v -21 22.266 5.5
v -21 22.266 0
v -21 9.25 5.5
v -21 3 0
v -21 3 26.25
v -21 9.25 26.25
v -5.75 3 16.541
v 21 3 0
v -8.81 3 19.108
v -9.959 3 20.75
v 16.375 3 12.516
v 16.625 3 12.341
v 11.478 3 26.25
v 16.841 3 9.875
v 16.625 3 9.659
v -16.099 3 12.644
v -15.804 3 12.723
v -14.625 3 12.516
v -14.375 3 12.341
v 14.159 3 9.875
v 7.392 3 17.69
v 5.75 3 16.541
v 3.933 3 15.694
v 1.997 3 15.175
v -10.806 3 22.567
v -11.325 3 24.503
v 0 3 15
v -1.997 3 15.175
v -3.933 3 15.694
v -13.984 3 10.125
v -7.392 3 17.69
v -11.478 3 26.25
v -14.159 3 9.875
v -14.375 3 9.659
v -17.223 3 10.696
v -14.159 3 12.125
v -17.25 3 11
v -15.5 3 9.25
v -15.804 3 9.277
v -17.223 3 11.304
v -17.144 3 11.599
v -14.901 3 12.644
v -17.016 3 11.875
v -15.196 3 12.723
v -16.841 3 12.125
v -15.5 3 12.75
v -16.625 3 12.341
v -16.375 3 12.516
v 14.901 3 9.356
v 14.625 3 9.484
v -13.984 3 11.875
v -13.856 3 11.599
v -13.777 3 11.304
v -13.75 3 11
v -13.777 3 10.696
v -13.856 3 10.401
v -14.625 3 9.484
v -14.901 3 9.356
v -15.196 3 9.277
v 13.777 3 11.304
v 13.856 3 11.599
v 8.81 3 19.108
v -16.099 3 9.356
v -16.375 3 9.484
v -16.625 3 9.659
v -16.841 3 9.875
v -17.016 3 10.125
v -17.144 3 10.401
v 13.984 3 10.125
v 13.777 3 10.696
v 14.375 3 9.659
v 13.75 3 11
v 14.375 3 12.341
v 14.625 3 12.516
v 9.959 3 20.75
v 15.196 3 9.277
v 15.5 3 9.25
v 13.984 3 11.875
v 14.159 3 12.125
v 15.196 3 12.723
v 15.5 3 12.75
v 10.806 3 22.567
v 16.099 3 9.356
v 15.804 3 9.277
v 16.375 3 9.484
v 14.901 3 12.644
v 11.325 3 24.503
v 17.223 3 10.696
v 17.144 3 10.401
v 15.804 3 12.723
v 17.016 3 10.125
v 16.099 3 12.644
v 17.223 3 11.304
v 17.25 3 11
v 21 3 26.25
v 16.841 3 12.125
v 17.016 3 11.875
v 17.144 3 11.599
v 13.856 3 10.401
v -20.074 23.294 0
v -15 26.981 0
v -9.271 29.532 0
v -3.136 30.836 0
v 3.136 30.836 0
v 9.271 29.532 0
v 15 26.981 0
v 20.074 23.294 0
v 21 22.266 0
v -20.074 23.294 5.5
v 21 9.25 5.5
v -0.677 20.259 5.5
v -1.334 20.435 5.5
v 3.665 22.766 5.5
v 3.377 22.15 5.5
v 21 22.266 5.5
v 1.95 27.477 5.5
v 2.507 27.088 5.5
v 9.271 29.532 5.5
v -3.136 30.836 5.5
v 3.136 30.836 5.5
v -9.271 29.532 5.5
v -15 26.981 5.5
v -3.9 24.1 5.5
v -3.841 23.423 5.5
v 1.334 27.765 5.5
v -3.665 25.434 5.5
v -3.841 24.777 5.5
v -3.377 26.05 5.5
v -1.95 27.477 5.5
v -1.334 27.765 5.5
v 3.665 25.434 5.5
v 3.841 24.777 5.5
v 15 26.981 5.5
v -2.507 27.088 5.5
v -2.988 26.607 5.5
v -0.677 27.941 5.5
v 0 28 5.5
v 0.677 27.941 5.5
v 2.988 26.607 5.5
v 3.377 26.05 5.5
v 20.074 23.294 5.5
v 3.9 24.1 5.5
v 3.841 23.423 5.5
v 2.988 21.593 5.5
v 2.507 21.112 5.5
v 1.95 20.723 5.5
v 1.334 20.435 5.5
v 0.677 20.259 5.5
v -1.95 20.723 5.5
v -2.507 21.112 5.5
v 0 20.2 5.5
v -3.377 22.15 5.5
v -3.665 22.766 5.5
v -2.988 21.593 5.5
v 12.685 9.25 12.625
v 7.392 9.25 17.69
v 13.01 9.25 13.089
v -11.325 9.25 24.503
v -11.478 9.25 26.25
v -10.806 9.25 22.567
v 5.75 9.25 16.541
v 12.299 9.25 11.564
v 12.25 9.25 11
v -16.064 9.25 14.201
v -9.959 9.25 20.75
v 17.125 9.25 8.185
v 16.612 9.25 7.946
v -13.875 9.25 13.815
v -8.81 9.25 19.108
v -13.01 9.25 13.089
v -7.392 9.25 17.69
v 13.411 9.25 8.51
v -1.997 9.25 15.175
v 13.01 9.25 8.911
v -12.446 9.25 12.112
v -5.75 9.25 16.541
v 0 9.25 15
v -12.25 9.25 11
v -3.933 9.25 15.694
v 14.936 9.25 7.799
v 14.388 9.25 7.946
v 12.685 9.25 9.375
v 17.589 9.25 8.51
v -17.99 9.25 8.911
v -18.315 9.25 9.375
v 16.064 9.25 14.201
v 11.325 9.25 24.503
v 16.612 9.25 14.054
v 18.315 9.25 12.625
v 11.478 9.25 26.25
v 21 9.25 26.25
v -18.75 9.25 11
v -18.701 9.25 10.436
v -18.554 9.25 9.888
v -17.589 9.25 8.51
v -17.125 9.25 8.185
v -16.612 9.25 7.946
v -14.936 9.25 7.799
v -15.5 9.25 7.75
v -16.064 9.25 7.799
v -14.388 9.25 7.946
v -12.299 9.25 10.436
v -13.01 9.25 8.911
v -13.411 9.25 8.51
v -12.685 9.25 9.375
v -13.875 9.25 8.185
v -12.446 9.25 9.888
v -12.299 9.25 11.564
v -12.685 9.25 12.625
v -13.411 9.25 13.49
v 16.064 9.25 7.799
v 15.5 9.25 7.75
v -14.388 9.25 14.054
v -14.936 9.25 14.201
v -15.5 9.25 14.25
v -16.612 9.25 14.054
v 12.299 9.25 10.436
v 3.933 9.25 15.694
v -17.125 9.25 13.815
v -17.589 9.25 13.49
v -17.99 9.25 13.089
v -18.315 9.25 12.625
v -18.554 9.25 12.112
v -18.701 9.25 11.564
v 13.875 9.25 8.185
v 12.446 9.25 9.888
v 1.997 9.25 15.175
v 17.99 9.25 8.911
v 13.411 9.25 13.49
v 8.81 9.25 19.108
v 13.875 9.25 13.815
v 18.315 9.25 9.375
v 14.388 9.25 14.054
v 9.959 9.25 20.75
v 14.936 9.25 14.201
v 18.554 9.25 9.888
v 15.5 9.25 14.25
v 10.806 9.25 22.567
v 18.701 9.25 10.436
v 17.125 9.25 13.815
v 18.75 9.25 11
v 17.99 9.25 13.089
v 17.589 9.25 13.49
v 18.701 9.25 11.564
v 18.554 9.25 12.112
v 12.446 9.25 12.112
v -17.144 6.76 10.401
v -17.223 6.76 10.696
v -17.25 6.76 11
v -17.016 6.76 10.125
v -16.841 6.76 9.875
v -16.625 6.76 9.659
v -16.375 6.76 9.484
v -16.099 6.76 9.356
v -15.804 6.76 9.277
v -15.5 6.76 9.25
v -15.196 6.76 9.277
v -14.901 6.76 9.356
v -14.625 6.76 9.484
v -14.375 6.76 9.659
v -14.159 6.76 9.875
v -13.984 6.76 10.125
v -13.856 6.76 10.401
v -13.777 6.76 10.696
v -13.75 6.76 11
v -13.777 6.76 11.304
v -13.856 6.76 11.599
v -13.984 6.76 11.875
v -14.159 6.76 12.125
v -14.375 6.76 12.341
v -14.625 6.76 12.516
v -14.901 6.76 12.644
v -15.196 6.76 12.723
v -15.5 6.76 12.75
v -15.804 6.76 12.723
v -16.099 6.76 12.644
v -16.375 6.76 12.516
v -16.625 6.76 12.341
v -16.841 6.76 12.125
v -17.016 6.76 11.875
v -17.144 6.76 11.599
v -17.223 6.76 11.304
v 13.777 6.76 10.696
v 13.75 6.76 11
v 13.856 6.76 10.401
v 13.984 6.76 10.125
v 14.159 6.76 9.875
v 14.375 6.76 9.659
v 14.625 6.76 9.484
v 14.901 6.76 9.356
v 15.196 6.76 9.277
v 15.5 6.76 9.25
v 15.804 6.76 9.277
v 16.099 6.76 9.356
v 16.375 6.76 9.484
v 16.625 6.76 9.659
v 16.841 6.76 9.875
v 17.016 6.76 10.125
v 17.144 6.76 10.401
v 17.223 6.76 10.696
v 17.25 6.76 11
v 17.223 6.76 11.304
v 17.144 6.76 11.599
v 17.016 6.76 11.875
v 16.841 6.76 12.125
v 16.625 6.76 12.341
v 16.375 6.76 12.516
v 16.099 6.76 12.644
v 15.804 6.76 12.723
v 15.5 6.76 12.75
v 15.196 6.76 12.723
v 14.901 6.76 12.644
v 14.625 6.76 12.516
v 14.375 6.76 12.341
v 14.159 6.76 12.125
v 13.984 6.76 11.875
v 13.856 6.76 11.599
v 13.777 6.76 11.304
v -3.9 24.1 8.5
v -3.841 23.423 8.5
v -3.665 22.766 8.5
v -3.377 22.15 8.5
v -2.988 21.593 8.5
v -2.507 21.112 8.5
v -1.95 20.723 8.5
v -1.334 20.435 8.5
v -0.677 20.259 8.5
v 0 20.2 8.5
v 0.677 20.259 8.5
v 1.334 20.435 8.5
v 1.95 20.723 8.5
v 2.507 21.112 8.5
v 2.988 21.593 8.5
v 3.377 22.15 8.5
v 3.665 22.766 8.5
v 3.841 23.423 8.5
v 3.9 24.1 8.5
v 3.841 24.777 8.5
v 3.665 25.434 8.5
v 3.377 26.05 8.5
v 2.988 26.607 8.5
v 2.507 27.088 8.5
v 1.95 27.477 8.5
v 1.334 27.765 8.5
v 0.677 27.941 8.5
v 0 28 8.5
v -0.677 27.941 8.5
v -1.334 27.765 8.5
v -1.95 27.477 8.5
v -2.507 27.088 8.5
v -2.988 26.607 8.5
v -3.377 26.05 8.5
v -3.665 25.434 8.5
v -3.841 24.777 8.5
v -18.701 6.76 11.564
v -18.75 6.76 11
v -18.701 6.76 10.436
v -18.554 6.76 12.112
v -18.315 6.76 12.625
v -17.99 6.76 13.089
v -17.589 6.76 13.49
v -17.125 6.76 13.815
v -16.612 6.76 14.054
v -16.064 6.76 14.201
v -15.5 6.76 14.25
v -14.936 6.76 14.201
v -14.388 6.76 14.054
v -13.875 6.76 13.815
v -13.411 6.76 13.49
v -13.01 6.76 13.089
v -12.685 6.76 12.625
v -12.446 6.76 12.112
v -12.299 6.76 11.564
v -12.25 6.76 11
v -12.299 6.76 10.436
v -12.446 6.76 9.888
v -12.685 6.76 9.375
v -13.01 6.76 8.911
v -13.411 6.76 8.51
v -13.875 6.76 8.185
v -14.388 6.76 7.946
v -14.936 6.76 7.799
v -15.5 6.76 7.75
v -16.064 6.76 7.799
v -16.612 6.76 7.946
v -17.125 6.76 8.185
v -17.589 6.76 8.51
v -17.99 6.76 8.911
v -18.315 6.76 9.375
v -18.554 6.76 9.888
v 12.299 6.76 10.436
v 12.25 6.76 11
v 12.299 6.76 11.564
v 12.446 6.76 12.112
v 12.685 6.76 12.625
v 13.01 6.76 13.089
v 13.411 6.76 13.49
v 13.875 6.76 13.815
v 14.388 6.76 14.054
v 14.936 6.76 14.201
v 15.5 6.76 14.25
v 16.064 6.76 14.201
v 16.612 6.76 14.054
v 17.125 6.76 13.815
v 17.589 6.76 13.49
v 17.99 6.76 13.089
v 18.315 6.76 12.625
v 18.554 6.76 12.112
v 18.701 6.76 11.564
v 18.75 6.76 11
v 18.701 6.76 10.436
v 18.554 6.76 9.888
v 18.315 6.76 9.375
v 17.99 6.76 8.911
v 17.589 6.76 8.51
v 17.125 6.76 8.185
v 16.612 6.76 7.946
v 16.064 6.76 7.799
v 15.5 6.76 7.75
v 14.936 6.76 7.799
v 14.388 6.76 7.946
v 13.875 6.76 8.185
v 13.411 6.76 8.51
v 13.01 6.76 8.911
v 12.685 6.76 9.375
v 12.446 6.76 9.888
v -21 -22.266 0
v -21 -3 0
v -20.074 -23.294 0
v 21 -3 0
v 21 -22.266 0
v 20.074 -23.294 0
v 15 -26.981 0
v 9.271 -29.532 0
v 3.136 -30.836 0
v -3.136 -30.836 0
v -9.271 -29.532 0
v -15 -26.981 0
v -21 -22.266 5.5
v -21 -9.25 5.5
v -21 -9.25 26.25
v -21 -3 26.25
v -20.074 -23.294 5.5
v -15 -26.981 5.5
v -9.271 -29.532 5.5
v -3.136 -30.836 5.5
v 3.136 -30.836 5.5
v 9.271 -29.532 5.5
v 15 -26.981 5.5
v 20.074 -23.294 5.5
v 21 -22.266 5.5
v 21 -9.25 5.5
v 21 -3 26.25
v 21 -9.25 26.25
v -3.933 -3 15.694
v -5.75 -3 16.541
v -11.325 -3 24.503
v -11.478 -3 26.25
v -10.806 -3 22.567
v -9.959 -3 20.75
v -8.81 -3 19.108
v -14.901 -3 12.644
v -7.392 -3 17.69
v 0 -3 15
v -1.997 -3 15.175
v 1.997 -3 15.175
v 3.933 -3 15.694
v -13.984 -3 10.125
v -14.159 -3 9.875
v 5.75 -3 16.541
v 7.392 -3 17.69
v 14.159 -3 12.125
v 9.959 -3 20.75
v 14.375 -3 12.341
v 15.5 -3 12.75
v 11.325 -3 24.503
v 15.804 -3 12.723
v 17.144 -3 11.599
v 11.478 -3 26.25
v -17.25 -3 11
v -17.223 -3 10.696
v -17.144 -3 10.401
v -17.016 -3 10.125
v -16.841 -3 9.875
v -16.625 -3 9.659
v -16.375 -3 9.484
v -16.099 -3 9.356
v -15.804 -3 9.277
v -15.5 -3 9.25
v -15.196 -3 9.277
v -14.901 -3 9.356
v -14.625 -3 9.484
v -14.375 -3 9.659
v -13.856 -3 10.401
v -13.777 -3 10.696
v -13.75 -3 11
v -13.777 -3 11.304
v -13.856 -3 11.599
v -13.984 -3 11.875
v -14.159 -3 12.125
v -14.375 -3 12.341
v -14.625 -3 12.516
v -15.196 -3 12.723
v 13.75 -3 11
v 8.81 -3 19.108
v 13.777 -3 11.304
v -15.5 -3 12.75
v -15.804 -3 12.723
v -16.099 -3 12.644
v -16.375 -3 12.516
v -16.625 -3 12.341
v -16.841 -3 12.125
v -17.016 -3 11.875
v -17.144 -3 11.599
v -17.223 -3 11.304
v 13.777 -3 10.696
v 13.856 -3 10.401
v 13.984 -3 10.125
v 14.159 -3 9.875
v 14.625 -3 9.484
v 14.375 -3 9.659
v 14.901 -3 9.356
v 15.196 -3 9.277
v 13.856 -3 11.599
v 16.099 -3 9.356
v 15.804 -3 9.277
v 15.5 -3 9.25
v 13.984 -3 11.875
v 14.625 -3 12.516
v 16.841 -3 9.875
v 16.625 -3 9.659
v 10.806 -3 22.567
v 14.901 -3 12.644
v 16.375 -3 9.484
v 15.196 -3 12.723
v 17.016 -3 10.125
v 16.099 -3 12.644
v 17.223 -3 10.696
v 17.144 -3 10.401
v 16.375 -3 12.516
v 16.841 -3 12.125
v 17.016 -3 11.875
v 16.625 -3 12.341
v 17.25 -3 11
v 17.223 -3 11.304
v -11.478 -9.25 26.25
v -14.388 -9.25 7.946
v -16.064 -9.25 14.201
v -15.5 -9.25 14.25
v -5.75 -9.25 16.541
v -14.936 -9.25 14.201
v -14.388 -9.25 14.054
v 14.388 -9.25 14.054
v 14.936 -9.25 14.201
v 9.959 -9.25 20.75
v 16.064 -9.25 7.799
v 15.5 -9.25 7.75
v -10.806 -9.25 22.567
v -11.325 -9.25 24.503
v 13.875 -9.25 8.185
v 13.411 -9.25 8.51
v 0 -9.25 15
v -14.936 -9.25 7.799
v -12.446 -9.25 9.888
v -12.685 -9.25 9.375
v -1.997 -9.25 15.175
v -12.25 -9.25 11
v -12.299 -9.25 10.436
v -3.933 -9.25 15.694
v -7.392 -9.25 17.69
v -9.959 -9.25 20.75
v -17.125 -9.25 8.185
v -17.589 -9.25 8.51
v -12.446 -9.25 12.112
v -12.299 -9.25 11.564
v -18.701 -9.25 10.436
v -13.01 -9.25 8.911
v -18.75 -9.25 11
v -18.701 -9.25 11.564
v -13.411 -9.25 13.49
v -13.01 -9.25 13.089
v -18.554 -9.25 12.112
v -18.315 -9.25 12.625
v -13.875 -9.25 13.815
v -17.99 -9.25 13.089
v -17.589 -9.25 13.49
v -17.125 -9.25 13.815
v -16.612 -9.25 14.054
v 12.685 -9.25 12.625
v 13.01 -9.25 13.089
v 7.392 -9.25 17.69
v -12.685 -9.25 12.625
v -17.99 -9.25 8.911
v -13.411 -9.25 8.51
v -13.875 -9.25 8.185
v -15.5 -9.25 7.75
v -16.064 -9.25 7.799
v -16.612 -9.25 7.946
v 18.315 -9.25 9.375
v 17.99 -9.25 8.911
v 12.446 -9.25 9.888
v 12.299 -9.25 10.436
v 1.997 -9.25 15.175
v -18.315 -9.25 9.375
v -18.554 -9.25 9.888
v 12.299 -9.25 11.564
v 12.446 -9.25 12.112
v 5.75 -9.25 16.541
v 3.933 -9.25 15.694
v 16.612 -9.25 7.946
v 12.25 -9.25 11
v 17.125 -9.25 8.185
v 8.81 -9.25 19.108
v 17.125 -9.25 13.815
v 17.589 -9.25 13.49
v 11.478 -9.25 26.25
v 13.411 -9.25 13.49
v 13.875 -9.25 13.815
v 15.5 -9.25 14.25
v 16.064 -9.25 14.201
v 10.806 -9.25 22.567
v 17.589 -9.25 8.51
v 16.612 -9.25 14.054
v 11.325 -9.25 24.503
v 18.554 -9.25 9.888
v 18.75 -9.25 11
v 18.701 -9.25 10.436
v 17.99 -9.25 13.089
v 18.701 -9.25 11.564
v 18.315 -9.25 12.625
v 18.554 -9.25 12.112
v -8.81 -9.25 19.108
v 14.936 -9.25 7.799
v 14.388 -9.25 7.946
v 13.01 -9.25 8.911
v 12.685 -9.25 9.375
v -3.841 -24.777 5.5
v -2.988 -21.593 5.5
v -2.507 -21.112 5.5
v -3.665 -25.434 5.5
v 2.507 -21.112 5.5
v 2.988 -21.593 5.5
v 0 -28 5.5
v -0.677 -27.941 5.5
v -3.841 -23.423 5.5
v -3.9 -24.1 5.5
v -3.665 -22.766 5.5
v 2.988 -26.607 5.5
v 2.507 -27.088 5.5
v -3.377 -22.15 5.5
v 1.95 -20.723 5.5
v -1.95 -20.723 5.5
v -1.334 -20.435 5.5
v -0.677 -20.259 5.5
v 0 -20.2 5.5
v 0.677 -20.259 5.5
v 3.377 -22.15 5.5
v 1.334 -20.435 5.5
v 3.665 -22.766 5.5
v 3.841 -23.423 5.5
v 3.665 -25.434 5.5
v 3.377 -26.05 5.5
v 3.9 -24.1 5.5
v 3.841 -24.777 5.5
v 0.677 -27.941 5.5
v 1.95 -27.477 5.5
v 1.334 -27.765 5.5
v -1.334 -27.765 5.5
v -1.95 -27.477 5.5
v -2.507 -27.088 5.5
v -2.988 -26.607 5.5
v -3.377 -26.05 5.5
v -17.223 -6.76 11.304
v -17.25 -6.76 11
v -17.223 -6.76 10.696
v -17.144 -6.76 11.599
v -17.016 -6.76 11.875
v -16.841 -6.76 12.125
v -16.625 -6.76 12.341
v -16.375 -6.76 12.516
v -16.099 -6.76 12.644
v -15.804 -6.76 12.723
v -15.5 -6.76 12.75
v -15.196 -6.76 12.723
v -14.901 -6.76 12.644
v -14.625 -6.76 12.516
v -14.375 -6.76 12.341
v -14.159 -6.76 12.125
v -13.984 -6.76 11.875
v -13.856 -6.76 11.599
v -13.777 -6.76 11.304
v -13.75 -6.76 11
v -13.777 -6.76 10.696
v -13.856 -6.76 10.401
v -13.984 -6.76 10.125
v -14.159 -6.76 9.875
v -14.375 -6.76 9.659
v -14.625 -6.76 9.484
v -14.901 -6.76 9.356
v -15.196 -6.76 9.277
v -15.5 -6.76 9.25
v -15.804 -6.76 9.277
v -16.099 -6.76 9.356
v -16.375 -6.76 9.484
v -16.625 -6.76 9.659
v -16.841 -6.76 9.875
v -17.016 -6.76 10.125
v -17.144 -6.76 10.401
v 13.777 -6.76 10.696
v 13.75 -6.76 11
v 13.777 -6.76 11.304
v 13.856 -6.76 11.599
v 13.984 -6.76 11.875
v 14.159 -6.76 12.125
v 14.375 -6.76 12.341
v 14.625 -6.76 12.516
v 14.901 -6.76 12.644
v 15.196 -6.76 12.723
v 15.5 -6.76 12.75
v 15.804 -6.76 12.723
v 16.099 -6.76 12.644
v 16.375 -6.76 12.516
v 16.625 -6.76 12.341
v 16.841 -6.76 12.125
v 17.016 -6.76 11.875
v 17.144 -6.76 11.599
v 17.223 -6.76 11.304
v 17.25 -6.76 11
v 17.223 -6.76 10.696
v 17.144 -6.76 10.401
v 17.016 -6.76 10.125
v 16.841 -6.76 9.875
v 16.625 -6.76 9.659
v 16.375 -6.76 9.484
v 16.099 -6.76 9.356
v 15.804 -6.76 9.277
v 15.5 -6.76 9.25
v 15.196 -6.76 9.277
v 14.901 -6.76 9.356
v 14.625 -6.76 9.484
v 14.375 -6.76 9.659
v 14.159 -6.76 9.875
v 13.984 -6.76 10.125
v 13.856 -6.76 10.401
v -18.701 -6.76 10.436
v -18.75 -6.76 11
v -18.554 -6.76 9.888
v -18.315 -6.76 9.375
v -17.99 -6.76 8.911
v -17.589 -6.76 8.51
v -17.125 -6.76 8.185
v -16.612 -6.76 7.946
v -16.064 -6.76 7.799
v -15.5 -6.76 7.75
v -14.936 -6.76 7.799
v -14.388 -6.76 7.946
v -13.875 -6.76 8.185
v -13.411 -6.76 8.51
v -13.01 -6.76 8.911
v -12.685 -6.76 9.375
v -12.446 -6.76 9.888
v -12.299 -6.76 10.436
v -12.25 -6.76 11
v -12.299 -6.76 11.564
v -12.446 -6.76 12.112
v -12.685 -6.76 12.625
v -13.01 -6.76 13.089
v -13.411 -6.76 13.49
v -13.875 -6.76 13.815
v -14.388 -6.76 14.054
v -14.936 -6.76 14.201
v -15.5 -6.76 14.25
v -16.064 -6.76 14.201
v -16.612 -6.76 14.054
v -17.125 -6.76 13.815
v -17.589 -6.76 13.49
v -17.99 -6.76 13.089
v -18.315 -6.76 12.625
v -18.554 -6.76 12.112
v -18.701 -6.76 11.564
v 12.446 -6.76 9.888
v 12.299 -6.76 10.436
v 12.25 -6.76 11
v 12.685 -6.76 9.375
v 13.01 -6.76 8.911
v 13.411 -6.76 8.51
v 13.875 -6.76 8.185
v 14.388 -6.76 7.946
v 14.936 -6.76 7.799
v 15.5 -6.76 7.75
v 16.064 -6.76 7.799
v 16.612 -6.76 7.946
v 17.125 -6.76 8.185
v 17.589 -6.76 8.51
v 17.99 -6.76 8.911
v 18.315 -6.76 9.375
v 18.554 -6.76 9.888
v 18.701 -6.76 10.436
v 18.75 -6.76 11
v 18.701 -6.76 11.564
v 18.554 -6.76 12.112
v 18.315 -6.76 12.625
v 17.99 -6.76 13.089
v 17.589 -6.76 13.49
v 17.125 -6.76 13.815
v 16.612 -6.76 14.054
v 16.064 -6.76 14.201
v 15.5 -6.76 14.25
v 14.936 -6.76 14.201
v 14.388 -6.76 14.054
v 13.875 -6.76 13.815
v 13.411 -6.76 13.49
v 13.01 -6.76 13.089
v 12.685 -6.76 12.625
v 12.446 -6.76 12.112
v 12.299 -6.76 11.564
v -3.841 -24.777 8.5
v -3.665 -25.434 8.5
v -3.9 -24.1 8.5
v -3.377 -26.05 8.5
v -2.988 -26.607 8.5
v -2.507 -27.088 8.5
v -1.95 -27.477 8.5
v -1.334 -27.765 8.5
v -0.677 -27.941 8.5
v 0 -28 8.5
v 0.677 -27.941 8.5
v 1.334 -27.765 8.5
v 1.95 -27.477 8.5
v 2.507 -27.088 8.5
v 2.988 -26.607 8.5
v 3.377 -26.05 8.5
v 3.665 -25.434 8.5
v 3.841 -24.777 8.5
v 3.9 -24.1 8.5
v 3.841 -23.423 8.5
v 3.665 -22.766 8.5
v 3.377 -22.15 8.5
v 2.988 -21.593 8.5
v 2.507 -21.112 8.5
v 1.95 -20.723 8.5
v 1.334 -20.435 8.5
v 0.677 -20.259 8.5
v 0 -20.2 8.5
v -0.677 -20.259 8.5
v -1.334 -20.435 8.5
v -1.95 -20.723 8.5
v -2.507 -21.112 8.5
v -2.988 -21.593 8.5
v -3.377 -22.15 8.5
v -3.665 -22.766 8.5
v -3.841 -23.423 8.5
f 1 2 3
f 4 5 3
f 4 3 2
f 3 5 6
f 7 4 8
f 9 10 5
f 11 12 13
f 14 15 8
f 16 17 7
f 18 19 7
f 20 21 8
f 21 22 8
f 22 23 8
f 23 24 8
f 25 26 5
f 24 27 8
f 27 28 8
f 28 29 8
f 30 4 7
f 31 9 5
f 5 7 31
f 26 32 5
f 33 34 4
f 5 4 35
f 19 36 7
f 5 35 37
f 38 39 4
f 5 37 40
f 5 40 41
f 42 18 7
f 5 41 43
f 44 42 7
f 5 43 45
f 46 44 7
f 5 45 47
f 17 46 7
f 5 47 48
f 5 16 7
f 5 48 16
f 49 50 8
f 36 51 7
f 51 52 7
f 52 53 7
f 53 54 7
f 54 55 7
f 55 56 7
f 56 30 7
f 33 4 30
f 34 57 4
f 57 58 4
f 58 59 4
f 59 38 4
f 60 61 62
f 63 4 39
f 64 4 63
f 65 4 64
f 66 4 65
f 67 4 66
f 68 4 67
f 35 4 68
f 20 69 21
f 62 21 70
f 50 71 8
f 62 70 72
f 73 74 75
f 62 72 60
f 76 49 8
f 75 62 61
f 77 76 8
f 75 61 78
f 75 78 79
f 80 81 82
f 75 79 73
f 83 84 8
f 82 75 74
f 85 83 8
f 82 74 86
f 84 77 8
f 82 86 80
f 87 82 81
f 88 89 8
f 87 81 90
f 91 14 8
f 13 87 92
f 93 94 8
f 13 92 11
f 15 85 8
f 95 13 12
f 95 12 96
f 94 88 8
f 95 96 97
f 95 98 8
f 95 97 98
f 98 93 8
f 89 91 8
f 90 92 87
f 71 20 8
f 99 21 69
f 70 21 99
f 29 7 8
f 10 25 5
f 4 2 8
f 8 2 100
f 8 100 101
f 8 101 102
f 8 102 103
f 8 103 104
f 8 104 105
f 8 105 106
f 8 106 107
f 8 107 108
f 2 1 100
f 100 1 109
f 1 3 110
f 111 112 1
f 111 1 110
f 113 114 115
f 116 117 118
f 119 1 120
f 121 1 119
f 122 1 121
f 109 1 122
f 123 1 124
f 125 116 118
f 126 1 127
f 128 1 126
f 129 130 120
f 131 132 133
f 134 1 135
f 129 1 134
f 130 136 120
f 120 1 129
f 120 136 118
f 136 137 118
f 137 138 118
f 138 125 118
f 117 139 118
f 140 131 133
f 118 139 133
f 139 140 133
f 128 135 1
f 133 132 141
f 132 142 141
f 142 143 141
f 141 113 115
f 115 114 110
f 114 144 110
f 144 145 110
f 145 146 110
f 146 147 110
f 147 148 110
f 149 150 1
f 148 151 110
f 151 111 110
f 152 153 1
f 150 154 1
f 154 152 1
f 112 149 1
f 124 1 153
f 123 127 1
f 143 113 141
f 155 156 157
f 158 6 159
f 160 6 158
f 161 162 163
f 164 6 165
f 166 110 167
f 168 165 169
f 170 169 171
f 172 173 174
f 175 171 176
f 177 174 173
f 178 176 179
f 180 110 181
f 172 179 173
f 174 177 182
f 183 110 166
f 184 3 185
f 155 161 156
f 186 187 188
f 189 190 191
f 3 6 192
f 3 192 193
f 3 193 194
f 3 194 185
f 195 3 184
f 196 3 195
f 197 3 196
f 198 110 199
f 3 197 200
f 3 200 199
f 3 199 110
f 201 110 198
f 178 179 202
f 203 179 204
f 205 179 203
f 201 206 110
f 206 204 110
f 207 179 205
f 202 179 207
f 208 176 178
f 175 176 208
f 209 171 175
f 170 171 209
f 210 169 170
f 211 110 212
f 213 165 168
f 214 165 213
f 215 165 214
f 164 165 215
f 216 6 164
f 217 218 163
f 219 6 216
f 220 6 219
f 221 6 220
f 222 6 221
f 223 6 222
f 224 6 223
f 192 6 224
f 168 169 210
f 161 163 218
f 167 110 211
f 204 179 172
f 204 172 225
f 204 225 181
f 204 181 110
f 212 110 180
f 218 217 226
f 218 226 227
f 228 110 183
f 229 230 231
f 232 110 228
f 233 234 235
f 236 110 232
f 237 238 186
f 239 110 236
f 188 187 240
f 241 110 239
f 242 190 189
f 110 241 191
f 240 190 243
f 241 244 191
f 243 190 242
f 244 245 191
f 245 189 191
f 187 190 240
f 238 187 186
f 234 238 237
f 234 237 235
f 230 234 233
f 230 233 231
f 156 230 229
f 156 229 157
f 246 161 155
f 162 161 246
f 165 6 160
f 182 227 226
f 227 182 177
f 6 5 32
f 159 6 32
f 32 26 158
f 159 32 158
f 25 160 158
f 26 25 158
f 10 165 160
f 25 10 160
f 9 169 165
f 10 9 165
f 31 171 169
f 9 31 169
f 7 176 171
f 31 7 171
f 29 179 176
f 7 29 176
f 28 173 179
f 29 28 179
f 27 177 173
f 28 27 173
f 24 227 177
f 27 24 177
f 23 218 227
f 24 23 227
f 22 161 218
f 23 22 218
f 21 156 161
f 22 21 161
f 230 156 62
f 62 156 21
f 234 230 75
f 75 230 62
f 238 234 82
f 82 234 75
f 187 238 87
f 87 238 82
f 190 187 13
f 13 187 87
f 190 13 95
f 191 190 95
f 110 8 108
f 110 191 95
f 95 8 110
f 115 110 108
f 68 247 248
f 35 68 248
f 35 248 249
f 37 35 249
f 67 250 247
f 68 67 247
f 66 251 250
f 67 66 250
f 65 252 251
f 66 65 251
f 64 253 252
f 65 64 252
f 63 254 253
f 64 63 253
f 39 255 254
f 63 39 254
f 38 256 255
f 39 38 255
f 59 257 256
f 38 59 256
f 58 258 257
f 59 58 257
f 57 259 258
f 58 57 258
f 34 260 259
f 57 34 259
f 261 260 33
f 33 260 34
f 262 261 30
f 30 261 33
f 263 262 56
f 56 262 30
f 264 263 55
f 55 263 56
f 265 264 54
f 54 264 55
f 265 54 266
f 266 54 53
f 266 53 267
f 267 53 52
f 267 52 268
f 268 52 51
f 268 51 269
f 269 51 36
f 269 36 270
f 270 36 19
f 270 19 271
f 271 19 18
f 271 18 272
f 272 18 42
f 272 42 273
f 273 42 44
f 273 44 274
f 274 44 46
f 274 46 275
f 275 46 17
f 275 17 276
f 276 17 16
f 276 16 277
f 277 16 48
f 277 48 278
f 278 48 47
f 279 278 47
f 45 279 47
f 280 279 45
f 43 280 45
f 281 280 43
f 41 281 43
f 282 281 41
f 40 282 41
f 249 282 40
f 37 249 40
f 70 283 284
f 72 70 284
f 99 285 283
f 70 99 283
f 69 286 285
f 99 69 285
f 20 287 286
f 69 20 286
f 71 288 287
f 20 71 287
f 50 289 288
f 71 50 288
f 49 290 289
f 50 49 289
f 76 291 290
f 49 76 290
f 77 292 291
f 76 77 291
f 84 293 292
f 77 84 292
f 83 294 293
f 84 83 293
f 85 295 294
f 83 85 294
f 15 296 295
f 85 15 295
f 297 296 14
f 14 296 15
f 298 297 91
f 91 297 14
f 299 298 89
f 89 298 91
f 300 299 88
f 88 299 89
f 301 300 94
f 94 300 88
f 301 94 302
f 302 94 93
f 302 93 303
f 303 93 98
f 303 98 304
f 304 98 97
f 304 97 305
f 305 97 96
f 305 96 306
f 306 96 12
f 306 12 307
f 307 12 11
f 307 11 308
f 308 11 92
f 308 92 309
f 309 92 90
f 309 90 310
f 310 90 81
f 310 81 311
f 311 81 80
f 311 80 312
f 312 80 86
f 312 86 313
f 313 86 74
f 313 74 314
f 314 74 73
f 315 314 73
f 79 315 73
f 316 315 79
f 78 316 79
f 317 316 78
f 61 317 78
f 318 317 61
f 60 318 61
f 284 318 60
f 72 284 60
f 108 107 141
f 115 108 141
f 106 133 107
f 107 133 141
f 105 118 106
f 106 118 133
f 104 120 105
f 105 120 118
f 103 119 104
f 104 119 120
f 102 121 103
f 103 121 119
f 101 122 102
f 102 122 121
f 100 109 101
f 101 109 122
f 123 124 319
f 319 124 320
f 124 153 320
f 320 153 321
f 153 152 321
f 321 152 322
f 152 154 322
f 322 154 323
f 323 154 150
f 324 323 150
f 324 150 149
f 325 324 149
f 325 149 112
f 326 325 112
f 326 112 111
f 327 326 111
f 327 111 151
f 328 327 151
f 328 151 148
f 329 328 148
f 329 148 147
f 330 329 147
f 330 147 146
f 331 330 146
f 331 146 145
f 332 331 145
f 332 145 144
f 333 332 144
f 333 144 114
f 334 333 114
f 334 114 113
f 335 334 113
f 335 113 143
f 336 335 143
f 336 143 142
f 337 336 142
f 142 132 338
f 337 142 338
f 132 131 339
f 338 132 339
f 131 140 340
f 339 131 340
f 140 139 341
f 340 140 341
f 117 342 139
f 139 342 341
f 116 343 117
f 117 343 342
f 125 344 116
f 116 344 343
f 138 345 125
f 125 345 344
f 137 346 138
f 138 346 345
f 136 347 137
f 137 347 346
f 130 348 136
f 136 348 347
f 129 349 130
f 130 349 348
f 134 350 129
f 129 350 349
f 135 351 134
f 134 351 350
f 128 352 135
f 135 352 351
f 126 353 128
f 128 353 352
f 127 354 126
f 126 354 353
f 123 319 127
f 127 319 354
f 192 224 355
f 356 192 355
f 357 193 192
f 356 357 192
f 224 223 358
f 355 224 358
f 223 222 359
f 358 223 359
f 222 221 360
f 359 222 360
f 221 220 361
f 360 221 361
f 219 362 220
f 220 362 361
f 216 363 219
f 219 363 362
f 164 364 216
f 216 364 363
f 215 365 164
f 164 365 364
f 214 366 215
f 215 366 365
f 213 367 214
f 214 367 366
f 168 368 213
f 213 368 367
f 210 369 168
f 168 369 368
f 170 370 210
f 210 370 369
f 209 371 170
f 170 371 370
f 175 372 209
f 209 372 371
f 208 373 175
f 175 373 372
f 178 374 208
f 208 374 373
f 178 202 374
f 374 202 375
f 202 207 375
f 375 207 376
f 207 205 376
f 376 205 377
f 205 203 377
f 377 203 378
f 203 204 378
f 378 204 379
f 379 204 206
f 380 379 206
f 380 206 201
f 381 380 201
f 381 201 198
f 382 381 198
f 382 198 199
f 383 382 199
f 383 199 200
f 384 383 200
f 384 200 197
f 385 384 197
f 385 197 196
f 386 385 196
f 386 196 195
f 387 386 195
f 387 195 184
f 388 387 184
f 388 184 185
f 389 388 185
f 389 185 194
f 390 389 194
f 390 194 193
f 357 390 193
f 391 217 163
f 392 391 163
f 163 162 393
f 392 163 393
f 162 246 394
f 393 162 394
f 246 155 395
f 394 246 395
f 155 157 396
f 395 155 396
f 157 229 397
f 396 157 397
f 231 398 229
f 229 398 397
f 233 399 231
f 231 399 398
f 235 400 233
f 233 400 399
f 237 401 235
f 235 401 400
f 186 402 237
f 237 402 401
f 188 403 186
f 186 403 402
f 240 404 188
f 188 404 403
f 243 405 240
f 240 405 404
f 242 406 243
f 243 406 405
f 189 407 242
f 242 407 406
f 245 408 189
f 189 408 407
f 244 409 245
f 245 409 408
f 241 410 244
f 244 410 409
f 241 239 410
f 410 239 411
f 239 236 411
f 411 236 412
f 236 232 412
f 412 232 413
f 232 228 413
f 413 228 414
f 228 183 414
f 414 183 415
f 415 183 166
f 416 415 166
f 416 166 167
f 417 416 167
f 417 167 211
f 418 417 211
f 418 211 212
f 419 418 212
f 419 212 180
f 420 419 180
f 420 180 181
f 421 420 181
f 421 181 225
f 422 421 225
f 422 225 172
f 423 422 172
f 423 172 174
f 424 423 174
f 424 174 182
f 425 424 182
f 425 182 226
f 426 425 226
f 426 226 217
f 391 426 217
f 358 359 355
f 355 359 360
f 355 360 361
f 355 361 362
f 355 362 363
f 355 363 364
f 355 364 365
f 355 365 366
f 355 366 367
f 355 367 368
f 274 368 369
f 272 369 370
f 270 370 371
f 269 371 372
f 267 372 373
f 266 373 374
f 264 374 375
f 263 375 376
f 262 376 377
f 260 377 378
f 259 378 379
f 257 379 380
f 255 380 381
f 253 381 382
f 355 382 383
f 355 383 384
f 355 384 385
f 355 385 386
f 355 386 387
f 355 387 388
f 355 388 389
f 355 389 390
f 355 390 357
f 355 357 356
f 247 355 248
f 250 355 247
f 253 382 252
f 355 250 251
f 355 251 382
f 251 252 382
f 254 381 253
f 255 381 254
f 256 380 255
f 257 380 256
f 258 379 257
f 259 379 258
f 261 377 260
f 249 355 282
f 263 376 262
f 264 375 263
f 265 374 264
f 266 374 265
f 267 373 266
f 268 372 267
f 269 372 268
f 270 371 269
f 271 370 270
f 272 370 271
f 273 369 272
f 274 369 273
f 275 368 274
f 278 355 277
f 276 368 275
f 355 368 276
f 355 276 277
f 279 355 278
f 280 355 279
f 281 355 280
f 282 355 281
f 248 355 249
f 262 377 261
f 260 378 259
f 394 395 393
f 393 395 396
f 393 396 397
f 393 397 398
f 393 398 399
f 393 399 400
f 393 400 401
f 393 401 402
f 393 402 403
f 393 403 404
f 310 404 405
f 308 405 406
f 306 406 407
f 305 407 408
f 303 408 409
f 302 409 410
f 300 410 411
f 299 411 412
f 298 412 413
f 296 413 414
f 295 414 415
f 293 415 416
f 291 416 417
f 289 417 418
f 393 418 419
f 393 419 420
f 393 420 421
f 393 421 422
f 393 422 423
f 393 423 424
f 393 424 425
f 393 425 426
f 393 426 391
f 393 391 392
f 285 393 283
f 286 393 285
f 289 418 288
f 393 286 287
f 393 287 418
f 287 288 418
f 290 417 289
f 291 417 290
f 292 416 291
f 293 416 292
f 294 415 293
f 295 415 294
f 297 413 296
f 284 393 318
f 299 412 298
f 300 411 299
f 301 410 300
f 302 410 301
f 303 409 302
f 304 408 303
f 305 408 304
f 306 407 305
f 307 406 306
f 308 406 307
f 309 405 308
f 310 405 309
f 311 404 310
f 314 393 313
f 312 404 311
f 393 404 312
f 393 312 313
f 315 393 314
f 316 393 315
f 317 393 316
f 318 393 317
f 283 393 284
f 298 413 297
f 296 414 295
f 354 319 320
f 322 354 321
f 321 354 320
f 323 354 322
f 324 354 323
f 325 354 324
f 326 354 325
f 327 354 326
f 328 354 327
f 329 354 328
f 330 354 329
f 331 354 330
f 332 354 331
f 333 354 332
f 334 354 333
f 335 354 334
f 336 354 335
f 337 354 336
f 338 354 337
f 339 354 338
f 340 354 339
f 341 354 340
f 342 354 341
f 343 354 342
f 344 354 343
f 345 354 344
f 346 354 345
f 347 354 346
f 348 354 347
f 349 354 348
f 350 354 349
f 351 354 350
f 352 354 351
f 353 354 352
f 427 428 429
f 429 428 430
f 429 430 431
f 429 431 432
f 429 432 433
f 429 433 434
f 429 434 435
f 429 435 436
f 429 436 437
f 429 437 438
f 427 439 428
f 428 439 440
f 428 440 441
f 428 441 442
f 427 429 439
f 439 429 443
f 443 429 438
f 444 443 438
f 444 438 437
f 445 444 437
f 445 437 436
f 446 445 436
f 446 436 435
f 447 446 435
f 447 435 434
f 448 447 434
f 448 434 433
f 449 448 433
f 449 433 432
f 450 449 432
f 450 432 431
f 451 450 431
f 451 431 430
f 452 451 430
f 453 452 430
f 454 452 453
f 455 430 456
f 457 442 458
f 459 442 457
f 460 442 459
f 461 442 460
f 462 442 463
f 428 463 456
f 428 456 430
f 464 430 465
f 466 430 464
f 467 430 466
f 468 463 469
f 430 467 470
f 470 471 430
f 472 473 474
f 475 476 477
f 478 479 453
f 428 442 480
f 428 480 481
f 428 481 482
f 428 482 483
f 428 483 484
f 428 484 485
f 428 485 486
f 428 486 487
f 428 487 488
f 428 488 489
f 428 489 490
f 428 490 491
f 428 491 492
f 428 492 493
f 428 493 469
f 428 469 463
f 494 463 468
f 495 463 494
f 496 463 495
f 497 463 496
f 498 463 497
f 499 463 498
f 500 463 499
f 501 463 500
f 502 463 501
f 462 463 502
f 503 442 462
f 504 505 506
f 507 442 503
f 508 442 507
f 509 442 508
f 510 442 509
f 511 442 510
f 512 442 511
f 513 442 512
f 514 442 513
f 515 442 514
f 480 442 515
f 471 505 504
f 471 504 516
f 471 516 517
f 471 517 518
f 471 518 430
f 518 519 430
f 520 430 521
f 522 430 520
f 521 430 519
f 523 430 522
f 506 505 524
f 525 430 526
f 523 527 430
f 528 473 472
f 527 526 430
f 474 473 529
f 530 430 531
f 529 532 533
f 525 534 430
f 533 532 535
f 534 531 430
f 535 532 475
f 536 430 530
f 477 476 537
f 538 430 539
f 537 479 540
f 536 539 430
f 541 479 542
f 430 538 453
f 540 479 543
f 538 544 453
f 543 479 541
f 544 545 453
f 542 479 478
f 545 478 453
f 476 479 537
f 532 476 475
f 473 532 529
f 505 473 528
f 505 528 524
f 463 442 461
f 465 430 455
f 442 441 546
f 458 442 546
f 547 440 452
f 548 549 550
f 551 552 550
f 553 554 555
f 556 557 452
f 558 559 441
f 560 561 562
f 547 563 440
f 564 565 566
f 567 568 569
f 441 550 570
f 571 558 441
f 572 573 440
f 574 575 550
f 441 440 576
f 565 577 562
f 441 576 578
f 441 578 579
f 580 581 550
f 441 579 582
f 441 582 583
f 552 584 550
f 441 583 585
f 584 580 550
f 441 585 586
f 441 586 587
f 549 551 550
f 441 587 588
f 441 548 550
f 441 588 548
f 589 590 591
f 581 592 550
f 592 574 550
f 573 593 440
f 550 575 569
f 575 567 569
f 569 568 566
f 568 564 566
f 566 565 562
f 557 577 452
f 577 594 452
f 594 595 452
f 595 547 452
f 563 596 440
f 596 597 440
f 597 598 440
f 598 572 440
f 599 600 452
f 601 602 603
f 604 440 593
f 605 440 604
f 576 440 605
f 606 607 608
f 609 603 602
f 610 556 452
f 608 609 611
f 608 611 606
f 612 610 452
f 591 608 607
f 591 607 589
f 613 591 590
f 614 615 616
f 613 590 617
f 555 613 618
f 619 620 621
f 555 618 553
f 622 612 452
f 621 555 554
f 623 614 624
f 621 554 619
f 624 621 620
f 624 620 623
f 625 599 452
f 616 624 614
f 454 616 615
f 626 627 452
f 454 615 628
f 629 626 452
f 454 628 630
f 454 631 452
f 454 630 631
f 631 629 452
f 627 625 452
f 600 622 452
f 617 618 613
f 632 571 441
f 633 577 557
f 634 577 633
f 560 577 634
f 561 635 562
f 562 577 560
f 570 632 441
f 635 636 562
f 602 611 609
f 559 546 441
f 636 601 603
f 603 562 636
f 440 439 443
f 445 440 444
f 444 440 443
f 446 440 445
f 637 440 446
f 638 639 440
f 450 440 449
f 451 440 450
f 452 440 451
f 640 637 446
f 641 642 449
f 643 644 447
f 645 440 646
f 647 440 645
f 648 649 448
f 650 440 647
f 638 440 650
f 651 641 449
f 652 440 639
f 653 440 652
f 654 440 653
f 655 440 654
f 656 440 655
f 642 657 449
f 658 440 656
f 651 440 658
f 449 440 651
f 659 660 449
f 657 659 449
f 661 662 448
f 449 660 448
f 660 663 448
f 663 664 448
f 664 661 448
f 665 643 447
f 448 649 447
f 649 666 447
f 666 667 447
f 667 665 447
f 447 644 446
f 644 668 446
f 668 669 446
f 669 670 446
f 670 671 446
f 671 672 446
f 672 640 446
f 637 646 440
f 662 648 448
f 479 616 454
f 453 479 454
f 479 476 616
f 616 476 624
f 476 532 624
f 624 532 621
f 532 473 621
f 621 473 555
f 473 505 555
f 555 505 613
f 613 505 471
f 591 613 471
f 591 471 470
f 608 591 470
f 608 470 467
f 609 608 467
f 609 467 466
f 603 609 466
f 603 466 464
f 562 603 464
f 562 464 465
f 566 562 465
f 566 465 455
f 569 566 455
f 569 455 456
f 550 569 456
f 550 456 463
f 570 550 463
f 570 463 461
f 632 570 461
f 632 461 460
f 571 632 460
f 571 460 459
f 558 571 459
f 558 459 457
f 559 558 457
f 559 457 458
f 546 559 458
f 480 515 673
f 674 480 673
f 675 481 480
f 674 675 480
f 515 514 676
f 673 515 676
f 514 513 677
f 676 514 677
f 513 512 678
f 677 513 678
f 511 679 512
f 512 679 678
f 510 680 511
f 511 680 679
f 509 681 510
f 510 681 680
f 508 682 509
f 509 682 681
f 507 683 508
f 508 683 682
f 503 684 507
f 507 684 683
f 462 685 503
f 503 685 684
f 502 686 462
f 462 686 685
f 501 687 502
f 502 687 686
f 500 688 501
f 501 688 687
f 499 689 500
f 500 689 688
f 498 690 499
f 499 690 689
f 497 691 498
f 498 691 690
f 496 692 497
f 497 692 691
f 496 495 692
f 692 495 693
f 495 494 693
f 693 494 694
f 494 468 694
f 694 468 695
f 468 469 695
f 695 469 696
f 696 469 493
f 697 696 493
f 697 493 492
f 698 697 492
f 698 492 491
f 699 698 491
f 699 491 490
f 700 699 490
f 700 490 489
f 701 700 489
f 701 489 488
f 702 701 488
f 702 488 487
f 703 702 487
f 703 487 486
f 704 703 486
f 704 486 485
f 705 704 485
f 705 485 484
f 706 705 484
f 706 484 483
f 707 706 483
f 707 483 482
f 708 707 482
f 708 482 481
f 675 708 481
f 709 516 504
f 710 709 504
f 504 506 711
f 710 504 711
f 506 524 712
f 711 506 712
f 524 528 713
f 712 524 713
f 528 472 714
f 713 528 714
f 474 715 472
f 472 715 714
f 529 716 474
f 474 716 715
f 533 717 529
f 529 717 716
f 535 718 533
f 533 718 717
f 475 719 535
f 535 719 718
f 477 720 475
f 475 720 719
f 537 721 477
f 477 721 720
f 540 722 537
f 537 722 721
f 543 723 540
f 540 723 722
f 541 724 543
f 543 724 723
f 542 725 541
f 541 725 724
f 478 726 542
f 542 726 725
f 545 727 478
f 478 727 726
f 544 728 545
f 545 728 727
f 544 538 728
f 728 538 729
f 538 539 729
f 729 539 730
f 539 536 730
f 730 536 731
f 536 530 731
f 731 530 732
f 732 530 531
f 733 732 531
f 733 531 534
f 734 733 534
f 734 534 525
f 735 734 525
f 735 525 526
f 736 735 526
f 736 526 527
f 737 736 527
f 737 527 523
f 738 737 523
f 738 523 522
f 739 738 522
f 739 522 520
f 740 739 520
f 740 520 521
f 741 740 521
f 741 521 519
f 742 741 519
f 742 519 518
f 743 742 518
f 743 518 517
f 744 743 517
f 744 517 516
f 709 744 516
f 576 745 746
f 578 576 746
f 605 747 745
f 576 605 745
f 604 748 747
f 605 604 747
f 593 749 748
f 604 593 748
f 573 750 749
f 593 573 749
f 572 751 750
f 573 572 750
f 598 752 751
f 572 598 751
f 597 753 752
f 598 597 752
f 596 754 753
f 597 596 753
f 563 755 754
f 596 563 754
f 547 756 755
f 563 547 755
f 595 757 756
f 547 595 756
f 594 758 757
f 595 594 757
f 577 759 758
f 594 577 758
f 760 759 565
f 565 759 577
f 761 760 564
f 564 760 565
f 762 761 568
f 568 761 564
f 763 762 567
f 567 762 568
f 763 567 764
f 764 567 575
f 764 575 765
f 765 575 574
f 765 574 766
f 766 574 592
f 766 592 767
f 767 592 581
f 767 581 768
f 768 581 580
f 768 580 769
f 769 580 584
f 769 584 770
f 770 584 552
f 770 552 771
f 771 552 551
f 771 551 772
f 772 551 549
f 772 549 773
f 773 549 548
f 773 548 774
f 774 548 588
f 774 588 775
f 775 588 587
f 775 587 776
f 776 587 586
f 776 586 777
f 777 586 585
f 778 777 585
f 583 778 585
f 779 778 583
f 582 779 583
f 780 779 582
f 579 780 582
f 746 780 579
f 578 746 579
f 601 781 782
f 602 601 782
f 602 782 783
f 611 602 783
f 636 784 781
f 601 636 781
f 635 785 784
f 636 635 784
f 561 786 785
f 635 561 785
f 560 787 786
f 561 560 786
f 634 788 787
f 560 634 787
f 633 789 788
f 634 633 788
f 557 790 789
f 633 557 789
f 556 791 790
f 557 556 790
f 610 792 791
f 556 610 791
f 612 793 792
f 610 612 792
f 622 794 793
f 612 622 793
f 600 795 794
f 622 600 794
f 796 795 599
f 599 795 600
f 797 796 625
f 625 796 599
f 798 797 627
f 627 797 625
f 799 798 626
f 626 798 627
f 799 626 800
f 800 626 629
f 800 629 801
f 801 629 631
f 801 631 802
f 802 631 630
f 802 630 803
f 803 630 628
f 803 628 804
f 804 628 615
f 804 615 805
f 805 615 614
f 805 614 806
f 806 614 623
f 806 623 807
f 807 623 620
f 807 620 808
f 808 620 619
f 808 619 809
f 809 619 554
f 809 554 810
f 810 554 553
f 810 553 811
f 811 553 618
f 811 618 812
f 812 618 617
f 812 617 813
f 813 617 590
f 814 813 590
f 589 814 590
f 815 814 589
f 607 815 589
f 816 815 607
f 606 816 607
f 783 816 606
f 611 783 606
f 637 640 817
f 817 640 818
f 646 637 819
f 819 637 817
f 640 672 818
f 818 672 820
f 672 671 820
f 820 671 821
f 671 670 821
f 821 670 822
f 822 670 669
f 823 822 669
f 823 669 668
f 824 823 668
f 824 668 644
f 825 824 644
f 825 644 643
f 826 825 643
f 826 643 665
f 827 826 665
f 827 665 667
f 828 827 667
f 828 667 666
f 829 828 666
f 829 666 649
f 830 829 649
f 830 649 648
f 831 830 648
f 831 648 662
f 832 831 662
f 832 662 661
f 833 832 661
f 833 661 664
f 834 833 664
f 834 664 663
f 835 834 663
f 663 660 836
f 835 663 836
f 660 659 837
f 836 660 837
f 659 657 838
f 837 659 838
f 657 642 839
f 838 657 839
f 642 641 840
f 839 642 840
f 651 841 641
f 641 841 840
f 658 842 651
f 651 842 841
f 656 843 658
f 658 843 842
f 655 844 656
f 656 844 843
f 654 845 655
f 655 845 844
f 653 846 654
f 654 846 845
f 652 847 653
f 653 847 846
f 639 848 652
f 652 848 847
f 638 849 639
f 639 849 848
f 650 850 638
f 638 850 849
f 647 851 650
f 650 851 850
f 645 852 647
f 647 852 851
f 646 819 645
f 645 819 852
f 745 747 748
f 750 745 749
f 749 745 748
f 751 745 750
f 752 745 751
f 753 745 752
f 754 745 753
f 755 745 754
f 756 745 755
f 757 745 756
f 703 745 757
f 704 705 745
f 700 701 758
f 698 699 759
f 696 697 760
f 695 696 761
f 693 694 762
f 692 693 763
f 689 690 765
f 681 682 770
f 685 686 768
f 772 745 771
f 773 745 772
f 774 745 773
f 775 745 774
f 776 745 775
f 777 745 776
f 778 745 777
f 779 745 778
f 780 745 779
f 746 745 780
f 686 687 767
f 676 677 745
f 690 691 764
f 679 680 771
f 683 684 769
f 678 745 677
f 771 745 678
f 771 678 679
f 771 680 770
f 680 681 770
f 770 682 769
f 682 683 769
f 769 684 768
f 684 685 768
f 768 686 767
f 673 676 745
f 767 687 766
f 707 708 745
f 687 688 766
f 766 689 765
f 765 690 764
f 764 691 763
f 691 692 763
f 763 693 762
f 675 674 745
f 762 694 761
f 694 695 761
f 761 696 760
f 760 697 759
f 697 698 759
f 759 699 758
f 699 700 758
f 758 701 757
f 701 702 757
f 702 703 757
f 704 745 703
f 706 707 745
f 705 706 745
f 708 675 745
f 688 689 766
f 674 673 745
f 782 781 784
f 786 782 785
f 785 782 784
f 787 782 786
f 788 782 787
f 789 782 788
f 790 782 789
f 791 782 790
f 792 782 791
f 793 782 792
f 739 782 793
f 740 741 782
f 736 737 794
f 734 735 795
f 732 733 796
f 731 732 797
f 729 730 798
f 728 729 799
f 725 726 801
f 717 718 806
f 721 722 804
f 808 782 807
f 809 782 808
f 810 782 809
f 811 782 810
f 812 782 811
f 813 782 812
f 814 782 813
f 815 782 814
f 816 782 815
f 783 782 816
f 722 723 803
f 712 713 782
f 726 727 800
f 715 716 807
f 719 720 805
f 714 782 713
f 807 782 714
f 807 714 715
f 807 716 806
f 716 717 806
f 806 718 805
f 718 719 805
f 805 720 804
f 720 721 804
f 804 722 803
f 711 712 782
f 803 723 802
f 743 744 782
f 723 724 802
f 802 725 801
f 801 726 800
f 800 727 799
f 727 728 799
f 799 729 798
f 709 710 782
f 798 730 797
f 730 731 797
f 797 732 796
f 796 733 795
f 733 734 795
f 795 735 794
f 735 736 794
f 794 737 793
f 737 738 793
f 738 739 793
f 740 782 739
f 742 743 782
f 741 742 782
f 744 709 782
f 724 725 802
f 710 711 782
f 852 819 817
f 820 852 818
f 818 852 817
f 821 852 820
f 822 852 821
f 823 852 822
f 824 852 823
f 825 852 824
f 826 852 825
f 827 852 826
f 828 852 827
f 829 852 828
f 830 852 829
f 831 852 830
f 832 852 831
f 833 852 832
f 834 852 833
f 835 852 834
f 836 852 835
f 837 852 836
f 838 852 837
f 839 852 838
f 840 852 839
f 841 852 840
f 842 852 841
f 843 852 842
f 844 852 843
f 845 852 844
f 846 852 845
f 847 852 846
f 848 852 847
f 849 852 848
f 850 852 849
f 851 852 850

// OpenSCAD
// file: parameters.scad
//
// Star tracker parameters
// Philippe Chrétien (2012)
// philippe.chretien.gmail.com
//

// Threaded rod
t_rod_out_radius = 4.8; //mm

// Skate bearing 608
bearing_out_radius = 11.25; //mm
bearing_thickness = 7.75; //mm

// M3 bolts
m3_out_radius = 1.5; //mm

// 1/4 nut
nut_1_4_radius = 6.5; //mm
nut_1_4_thickness = 5.5; //mm

// 3/8 nut
bolt_3_8_head_radius = 8.5; //mm
bolt_3_8_head_thickness = 6.0; //mm
// main file
include <parameters.scad>

base_x = 42.0;
base_y = 28.0;
base_z = 5.5;
curve_radius = 30;

top_width = 6.25;
top_height = 26.25;

screw_x = 15.5;		// Relative to the motor head hole center
screw_z = 15.5;		// Relative to the motor head hole center
screw_radius = 1.75;
screw_head_radius = 3.25;
screw_head_depth = 2.5;

pin_y = 3;
pin_height = 3;
pin_radius = 3.9;

motor_head_z = 26.5;
motor_head_radius = 11.5;

buffer = 0.01;

module motor_half_mount()
{
	difference()
	{
		// Piece stock
		union()
		{
			intersection()
			{
				translate([-1*(base_x/2),0,0])
					cube([base_x,base_y,base_z]);

				translate([0,base_y-curve_radius,0])
					cylinder(r=curve_radius, h=base_z);
			}			

			translate([-1*(base_x/2),0,0])
				cube([base_x,top_width,top_height]);

			translate([0,base_y-pin_y-pin_radius,base_z])
				cylinder(r=pin_radius, h=pin_height, $fn=36);
		}	

		// Motor head hole
		translate([0,top_width+buffer,motor_head_z])
			rotate(a=90, v=[1,0,0])
				cylinder(r=motor_head_radius, h=top_width+2*buffer, $fn=36);

		// Screw holes
		translate([screw_x,top_width+buffer,motor_head_z-screw_z])
			rotate(a=90, v=[1,0,0])
				cylinder(r=screw_radius, h=top_width+2*buffer, $fn=36);

		translate([-1*screw_x,top_width+buffer,motor_head_z-screw_z])
			rotate(a=90, v=[1,0,0])
				cylinder(r=screw_radius, h=top_width+2*buffer, $fn=36);

		// Screw head pockets
		translate([screw_x,top_width+buffer,motor_head_z-screw_z])
			rotate(a=90, v=[1,0,0])
				cylinder(r=screw_head_radius, h=screw_head_depth, $fn=36);

		translate([-1*screw_x,top_width+buffer,motor_head_z-screw_z])
			rotate(a=90, v=[1,0,0])
				cylinder(r=screw_head_radius, h=screw_head_depth, $fn=36);
	}
}

translate([0,3,0])
	motor_half_mount();

translate([0,-3,0])
	rotate(a=180, v=[0,0,1])
		motor_half_mount();
